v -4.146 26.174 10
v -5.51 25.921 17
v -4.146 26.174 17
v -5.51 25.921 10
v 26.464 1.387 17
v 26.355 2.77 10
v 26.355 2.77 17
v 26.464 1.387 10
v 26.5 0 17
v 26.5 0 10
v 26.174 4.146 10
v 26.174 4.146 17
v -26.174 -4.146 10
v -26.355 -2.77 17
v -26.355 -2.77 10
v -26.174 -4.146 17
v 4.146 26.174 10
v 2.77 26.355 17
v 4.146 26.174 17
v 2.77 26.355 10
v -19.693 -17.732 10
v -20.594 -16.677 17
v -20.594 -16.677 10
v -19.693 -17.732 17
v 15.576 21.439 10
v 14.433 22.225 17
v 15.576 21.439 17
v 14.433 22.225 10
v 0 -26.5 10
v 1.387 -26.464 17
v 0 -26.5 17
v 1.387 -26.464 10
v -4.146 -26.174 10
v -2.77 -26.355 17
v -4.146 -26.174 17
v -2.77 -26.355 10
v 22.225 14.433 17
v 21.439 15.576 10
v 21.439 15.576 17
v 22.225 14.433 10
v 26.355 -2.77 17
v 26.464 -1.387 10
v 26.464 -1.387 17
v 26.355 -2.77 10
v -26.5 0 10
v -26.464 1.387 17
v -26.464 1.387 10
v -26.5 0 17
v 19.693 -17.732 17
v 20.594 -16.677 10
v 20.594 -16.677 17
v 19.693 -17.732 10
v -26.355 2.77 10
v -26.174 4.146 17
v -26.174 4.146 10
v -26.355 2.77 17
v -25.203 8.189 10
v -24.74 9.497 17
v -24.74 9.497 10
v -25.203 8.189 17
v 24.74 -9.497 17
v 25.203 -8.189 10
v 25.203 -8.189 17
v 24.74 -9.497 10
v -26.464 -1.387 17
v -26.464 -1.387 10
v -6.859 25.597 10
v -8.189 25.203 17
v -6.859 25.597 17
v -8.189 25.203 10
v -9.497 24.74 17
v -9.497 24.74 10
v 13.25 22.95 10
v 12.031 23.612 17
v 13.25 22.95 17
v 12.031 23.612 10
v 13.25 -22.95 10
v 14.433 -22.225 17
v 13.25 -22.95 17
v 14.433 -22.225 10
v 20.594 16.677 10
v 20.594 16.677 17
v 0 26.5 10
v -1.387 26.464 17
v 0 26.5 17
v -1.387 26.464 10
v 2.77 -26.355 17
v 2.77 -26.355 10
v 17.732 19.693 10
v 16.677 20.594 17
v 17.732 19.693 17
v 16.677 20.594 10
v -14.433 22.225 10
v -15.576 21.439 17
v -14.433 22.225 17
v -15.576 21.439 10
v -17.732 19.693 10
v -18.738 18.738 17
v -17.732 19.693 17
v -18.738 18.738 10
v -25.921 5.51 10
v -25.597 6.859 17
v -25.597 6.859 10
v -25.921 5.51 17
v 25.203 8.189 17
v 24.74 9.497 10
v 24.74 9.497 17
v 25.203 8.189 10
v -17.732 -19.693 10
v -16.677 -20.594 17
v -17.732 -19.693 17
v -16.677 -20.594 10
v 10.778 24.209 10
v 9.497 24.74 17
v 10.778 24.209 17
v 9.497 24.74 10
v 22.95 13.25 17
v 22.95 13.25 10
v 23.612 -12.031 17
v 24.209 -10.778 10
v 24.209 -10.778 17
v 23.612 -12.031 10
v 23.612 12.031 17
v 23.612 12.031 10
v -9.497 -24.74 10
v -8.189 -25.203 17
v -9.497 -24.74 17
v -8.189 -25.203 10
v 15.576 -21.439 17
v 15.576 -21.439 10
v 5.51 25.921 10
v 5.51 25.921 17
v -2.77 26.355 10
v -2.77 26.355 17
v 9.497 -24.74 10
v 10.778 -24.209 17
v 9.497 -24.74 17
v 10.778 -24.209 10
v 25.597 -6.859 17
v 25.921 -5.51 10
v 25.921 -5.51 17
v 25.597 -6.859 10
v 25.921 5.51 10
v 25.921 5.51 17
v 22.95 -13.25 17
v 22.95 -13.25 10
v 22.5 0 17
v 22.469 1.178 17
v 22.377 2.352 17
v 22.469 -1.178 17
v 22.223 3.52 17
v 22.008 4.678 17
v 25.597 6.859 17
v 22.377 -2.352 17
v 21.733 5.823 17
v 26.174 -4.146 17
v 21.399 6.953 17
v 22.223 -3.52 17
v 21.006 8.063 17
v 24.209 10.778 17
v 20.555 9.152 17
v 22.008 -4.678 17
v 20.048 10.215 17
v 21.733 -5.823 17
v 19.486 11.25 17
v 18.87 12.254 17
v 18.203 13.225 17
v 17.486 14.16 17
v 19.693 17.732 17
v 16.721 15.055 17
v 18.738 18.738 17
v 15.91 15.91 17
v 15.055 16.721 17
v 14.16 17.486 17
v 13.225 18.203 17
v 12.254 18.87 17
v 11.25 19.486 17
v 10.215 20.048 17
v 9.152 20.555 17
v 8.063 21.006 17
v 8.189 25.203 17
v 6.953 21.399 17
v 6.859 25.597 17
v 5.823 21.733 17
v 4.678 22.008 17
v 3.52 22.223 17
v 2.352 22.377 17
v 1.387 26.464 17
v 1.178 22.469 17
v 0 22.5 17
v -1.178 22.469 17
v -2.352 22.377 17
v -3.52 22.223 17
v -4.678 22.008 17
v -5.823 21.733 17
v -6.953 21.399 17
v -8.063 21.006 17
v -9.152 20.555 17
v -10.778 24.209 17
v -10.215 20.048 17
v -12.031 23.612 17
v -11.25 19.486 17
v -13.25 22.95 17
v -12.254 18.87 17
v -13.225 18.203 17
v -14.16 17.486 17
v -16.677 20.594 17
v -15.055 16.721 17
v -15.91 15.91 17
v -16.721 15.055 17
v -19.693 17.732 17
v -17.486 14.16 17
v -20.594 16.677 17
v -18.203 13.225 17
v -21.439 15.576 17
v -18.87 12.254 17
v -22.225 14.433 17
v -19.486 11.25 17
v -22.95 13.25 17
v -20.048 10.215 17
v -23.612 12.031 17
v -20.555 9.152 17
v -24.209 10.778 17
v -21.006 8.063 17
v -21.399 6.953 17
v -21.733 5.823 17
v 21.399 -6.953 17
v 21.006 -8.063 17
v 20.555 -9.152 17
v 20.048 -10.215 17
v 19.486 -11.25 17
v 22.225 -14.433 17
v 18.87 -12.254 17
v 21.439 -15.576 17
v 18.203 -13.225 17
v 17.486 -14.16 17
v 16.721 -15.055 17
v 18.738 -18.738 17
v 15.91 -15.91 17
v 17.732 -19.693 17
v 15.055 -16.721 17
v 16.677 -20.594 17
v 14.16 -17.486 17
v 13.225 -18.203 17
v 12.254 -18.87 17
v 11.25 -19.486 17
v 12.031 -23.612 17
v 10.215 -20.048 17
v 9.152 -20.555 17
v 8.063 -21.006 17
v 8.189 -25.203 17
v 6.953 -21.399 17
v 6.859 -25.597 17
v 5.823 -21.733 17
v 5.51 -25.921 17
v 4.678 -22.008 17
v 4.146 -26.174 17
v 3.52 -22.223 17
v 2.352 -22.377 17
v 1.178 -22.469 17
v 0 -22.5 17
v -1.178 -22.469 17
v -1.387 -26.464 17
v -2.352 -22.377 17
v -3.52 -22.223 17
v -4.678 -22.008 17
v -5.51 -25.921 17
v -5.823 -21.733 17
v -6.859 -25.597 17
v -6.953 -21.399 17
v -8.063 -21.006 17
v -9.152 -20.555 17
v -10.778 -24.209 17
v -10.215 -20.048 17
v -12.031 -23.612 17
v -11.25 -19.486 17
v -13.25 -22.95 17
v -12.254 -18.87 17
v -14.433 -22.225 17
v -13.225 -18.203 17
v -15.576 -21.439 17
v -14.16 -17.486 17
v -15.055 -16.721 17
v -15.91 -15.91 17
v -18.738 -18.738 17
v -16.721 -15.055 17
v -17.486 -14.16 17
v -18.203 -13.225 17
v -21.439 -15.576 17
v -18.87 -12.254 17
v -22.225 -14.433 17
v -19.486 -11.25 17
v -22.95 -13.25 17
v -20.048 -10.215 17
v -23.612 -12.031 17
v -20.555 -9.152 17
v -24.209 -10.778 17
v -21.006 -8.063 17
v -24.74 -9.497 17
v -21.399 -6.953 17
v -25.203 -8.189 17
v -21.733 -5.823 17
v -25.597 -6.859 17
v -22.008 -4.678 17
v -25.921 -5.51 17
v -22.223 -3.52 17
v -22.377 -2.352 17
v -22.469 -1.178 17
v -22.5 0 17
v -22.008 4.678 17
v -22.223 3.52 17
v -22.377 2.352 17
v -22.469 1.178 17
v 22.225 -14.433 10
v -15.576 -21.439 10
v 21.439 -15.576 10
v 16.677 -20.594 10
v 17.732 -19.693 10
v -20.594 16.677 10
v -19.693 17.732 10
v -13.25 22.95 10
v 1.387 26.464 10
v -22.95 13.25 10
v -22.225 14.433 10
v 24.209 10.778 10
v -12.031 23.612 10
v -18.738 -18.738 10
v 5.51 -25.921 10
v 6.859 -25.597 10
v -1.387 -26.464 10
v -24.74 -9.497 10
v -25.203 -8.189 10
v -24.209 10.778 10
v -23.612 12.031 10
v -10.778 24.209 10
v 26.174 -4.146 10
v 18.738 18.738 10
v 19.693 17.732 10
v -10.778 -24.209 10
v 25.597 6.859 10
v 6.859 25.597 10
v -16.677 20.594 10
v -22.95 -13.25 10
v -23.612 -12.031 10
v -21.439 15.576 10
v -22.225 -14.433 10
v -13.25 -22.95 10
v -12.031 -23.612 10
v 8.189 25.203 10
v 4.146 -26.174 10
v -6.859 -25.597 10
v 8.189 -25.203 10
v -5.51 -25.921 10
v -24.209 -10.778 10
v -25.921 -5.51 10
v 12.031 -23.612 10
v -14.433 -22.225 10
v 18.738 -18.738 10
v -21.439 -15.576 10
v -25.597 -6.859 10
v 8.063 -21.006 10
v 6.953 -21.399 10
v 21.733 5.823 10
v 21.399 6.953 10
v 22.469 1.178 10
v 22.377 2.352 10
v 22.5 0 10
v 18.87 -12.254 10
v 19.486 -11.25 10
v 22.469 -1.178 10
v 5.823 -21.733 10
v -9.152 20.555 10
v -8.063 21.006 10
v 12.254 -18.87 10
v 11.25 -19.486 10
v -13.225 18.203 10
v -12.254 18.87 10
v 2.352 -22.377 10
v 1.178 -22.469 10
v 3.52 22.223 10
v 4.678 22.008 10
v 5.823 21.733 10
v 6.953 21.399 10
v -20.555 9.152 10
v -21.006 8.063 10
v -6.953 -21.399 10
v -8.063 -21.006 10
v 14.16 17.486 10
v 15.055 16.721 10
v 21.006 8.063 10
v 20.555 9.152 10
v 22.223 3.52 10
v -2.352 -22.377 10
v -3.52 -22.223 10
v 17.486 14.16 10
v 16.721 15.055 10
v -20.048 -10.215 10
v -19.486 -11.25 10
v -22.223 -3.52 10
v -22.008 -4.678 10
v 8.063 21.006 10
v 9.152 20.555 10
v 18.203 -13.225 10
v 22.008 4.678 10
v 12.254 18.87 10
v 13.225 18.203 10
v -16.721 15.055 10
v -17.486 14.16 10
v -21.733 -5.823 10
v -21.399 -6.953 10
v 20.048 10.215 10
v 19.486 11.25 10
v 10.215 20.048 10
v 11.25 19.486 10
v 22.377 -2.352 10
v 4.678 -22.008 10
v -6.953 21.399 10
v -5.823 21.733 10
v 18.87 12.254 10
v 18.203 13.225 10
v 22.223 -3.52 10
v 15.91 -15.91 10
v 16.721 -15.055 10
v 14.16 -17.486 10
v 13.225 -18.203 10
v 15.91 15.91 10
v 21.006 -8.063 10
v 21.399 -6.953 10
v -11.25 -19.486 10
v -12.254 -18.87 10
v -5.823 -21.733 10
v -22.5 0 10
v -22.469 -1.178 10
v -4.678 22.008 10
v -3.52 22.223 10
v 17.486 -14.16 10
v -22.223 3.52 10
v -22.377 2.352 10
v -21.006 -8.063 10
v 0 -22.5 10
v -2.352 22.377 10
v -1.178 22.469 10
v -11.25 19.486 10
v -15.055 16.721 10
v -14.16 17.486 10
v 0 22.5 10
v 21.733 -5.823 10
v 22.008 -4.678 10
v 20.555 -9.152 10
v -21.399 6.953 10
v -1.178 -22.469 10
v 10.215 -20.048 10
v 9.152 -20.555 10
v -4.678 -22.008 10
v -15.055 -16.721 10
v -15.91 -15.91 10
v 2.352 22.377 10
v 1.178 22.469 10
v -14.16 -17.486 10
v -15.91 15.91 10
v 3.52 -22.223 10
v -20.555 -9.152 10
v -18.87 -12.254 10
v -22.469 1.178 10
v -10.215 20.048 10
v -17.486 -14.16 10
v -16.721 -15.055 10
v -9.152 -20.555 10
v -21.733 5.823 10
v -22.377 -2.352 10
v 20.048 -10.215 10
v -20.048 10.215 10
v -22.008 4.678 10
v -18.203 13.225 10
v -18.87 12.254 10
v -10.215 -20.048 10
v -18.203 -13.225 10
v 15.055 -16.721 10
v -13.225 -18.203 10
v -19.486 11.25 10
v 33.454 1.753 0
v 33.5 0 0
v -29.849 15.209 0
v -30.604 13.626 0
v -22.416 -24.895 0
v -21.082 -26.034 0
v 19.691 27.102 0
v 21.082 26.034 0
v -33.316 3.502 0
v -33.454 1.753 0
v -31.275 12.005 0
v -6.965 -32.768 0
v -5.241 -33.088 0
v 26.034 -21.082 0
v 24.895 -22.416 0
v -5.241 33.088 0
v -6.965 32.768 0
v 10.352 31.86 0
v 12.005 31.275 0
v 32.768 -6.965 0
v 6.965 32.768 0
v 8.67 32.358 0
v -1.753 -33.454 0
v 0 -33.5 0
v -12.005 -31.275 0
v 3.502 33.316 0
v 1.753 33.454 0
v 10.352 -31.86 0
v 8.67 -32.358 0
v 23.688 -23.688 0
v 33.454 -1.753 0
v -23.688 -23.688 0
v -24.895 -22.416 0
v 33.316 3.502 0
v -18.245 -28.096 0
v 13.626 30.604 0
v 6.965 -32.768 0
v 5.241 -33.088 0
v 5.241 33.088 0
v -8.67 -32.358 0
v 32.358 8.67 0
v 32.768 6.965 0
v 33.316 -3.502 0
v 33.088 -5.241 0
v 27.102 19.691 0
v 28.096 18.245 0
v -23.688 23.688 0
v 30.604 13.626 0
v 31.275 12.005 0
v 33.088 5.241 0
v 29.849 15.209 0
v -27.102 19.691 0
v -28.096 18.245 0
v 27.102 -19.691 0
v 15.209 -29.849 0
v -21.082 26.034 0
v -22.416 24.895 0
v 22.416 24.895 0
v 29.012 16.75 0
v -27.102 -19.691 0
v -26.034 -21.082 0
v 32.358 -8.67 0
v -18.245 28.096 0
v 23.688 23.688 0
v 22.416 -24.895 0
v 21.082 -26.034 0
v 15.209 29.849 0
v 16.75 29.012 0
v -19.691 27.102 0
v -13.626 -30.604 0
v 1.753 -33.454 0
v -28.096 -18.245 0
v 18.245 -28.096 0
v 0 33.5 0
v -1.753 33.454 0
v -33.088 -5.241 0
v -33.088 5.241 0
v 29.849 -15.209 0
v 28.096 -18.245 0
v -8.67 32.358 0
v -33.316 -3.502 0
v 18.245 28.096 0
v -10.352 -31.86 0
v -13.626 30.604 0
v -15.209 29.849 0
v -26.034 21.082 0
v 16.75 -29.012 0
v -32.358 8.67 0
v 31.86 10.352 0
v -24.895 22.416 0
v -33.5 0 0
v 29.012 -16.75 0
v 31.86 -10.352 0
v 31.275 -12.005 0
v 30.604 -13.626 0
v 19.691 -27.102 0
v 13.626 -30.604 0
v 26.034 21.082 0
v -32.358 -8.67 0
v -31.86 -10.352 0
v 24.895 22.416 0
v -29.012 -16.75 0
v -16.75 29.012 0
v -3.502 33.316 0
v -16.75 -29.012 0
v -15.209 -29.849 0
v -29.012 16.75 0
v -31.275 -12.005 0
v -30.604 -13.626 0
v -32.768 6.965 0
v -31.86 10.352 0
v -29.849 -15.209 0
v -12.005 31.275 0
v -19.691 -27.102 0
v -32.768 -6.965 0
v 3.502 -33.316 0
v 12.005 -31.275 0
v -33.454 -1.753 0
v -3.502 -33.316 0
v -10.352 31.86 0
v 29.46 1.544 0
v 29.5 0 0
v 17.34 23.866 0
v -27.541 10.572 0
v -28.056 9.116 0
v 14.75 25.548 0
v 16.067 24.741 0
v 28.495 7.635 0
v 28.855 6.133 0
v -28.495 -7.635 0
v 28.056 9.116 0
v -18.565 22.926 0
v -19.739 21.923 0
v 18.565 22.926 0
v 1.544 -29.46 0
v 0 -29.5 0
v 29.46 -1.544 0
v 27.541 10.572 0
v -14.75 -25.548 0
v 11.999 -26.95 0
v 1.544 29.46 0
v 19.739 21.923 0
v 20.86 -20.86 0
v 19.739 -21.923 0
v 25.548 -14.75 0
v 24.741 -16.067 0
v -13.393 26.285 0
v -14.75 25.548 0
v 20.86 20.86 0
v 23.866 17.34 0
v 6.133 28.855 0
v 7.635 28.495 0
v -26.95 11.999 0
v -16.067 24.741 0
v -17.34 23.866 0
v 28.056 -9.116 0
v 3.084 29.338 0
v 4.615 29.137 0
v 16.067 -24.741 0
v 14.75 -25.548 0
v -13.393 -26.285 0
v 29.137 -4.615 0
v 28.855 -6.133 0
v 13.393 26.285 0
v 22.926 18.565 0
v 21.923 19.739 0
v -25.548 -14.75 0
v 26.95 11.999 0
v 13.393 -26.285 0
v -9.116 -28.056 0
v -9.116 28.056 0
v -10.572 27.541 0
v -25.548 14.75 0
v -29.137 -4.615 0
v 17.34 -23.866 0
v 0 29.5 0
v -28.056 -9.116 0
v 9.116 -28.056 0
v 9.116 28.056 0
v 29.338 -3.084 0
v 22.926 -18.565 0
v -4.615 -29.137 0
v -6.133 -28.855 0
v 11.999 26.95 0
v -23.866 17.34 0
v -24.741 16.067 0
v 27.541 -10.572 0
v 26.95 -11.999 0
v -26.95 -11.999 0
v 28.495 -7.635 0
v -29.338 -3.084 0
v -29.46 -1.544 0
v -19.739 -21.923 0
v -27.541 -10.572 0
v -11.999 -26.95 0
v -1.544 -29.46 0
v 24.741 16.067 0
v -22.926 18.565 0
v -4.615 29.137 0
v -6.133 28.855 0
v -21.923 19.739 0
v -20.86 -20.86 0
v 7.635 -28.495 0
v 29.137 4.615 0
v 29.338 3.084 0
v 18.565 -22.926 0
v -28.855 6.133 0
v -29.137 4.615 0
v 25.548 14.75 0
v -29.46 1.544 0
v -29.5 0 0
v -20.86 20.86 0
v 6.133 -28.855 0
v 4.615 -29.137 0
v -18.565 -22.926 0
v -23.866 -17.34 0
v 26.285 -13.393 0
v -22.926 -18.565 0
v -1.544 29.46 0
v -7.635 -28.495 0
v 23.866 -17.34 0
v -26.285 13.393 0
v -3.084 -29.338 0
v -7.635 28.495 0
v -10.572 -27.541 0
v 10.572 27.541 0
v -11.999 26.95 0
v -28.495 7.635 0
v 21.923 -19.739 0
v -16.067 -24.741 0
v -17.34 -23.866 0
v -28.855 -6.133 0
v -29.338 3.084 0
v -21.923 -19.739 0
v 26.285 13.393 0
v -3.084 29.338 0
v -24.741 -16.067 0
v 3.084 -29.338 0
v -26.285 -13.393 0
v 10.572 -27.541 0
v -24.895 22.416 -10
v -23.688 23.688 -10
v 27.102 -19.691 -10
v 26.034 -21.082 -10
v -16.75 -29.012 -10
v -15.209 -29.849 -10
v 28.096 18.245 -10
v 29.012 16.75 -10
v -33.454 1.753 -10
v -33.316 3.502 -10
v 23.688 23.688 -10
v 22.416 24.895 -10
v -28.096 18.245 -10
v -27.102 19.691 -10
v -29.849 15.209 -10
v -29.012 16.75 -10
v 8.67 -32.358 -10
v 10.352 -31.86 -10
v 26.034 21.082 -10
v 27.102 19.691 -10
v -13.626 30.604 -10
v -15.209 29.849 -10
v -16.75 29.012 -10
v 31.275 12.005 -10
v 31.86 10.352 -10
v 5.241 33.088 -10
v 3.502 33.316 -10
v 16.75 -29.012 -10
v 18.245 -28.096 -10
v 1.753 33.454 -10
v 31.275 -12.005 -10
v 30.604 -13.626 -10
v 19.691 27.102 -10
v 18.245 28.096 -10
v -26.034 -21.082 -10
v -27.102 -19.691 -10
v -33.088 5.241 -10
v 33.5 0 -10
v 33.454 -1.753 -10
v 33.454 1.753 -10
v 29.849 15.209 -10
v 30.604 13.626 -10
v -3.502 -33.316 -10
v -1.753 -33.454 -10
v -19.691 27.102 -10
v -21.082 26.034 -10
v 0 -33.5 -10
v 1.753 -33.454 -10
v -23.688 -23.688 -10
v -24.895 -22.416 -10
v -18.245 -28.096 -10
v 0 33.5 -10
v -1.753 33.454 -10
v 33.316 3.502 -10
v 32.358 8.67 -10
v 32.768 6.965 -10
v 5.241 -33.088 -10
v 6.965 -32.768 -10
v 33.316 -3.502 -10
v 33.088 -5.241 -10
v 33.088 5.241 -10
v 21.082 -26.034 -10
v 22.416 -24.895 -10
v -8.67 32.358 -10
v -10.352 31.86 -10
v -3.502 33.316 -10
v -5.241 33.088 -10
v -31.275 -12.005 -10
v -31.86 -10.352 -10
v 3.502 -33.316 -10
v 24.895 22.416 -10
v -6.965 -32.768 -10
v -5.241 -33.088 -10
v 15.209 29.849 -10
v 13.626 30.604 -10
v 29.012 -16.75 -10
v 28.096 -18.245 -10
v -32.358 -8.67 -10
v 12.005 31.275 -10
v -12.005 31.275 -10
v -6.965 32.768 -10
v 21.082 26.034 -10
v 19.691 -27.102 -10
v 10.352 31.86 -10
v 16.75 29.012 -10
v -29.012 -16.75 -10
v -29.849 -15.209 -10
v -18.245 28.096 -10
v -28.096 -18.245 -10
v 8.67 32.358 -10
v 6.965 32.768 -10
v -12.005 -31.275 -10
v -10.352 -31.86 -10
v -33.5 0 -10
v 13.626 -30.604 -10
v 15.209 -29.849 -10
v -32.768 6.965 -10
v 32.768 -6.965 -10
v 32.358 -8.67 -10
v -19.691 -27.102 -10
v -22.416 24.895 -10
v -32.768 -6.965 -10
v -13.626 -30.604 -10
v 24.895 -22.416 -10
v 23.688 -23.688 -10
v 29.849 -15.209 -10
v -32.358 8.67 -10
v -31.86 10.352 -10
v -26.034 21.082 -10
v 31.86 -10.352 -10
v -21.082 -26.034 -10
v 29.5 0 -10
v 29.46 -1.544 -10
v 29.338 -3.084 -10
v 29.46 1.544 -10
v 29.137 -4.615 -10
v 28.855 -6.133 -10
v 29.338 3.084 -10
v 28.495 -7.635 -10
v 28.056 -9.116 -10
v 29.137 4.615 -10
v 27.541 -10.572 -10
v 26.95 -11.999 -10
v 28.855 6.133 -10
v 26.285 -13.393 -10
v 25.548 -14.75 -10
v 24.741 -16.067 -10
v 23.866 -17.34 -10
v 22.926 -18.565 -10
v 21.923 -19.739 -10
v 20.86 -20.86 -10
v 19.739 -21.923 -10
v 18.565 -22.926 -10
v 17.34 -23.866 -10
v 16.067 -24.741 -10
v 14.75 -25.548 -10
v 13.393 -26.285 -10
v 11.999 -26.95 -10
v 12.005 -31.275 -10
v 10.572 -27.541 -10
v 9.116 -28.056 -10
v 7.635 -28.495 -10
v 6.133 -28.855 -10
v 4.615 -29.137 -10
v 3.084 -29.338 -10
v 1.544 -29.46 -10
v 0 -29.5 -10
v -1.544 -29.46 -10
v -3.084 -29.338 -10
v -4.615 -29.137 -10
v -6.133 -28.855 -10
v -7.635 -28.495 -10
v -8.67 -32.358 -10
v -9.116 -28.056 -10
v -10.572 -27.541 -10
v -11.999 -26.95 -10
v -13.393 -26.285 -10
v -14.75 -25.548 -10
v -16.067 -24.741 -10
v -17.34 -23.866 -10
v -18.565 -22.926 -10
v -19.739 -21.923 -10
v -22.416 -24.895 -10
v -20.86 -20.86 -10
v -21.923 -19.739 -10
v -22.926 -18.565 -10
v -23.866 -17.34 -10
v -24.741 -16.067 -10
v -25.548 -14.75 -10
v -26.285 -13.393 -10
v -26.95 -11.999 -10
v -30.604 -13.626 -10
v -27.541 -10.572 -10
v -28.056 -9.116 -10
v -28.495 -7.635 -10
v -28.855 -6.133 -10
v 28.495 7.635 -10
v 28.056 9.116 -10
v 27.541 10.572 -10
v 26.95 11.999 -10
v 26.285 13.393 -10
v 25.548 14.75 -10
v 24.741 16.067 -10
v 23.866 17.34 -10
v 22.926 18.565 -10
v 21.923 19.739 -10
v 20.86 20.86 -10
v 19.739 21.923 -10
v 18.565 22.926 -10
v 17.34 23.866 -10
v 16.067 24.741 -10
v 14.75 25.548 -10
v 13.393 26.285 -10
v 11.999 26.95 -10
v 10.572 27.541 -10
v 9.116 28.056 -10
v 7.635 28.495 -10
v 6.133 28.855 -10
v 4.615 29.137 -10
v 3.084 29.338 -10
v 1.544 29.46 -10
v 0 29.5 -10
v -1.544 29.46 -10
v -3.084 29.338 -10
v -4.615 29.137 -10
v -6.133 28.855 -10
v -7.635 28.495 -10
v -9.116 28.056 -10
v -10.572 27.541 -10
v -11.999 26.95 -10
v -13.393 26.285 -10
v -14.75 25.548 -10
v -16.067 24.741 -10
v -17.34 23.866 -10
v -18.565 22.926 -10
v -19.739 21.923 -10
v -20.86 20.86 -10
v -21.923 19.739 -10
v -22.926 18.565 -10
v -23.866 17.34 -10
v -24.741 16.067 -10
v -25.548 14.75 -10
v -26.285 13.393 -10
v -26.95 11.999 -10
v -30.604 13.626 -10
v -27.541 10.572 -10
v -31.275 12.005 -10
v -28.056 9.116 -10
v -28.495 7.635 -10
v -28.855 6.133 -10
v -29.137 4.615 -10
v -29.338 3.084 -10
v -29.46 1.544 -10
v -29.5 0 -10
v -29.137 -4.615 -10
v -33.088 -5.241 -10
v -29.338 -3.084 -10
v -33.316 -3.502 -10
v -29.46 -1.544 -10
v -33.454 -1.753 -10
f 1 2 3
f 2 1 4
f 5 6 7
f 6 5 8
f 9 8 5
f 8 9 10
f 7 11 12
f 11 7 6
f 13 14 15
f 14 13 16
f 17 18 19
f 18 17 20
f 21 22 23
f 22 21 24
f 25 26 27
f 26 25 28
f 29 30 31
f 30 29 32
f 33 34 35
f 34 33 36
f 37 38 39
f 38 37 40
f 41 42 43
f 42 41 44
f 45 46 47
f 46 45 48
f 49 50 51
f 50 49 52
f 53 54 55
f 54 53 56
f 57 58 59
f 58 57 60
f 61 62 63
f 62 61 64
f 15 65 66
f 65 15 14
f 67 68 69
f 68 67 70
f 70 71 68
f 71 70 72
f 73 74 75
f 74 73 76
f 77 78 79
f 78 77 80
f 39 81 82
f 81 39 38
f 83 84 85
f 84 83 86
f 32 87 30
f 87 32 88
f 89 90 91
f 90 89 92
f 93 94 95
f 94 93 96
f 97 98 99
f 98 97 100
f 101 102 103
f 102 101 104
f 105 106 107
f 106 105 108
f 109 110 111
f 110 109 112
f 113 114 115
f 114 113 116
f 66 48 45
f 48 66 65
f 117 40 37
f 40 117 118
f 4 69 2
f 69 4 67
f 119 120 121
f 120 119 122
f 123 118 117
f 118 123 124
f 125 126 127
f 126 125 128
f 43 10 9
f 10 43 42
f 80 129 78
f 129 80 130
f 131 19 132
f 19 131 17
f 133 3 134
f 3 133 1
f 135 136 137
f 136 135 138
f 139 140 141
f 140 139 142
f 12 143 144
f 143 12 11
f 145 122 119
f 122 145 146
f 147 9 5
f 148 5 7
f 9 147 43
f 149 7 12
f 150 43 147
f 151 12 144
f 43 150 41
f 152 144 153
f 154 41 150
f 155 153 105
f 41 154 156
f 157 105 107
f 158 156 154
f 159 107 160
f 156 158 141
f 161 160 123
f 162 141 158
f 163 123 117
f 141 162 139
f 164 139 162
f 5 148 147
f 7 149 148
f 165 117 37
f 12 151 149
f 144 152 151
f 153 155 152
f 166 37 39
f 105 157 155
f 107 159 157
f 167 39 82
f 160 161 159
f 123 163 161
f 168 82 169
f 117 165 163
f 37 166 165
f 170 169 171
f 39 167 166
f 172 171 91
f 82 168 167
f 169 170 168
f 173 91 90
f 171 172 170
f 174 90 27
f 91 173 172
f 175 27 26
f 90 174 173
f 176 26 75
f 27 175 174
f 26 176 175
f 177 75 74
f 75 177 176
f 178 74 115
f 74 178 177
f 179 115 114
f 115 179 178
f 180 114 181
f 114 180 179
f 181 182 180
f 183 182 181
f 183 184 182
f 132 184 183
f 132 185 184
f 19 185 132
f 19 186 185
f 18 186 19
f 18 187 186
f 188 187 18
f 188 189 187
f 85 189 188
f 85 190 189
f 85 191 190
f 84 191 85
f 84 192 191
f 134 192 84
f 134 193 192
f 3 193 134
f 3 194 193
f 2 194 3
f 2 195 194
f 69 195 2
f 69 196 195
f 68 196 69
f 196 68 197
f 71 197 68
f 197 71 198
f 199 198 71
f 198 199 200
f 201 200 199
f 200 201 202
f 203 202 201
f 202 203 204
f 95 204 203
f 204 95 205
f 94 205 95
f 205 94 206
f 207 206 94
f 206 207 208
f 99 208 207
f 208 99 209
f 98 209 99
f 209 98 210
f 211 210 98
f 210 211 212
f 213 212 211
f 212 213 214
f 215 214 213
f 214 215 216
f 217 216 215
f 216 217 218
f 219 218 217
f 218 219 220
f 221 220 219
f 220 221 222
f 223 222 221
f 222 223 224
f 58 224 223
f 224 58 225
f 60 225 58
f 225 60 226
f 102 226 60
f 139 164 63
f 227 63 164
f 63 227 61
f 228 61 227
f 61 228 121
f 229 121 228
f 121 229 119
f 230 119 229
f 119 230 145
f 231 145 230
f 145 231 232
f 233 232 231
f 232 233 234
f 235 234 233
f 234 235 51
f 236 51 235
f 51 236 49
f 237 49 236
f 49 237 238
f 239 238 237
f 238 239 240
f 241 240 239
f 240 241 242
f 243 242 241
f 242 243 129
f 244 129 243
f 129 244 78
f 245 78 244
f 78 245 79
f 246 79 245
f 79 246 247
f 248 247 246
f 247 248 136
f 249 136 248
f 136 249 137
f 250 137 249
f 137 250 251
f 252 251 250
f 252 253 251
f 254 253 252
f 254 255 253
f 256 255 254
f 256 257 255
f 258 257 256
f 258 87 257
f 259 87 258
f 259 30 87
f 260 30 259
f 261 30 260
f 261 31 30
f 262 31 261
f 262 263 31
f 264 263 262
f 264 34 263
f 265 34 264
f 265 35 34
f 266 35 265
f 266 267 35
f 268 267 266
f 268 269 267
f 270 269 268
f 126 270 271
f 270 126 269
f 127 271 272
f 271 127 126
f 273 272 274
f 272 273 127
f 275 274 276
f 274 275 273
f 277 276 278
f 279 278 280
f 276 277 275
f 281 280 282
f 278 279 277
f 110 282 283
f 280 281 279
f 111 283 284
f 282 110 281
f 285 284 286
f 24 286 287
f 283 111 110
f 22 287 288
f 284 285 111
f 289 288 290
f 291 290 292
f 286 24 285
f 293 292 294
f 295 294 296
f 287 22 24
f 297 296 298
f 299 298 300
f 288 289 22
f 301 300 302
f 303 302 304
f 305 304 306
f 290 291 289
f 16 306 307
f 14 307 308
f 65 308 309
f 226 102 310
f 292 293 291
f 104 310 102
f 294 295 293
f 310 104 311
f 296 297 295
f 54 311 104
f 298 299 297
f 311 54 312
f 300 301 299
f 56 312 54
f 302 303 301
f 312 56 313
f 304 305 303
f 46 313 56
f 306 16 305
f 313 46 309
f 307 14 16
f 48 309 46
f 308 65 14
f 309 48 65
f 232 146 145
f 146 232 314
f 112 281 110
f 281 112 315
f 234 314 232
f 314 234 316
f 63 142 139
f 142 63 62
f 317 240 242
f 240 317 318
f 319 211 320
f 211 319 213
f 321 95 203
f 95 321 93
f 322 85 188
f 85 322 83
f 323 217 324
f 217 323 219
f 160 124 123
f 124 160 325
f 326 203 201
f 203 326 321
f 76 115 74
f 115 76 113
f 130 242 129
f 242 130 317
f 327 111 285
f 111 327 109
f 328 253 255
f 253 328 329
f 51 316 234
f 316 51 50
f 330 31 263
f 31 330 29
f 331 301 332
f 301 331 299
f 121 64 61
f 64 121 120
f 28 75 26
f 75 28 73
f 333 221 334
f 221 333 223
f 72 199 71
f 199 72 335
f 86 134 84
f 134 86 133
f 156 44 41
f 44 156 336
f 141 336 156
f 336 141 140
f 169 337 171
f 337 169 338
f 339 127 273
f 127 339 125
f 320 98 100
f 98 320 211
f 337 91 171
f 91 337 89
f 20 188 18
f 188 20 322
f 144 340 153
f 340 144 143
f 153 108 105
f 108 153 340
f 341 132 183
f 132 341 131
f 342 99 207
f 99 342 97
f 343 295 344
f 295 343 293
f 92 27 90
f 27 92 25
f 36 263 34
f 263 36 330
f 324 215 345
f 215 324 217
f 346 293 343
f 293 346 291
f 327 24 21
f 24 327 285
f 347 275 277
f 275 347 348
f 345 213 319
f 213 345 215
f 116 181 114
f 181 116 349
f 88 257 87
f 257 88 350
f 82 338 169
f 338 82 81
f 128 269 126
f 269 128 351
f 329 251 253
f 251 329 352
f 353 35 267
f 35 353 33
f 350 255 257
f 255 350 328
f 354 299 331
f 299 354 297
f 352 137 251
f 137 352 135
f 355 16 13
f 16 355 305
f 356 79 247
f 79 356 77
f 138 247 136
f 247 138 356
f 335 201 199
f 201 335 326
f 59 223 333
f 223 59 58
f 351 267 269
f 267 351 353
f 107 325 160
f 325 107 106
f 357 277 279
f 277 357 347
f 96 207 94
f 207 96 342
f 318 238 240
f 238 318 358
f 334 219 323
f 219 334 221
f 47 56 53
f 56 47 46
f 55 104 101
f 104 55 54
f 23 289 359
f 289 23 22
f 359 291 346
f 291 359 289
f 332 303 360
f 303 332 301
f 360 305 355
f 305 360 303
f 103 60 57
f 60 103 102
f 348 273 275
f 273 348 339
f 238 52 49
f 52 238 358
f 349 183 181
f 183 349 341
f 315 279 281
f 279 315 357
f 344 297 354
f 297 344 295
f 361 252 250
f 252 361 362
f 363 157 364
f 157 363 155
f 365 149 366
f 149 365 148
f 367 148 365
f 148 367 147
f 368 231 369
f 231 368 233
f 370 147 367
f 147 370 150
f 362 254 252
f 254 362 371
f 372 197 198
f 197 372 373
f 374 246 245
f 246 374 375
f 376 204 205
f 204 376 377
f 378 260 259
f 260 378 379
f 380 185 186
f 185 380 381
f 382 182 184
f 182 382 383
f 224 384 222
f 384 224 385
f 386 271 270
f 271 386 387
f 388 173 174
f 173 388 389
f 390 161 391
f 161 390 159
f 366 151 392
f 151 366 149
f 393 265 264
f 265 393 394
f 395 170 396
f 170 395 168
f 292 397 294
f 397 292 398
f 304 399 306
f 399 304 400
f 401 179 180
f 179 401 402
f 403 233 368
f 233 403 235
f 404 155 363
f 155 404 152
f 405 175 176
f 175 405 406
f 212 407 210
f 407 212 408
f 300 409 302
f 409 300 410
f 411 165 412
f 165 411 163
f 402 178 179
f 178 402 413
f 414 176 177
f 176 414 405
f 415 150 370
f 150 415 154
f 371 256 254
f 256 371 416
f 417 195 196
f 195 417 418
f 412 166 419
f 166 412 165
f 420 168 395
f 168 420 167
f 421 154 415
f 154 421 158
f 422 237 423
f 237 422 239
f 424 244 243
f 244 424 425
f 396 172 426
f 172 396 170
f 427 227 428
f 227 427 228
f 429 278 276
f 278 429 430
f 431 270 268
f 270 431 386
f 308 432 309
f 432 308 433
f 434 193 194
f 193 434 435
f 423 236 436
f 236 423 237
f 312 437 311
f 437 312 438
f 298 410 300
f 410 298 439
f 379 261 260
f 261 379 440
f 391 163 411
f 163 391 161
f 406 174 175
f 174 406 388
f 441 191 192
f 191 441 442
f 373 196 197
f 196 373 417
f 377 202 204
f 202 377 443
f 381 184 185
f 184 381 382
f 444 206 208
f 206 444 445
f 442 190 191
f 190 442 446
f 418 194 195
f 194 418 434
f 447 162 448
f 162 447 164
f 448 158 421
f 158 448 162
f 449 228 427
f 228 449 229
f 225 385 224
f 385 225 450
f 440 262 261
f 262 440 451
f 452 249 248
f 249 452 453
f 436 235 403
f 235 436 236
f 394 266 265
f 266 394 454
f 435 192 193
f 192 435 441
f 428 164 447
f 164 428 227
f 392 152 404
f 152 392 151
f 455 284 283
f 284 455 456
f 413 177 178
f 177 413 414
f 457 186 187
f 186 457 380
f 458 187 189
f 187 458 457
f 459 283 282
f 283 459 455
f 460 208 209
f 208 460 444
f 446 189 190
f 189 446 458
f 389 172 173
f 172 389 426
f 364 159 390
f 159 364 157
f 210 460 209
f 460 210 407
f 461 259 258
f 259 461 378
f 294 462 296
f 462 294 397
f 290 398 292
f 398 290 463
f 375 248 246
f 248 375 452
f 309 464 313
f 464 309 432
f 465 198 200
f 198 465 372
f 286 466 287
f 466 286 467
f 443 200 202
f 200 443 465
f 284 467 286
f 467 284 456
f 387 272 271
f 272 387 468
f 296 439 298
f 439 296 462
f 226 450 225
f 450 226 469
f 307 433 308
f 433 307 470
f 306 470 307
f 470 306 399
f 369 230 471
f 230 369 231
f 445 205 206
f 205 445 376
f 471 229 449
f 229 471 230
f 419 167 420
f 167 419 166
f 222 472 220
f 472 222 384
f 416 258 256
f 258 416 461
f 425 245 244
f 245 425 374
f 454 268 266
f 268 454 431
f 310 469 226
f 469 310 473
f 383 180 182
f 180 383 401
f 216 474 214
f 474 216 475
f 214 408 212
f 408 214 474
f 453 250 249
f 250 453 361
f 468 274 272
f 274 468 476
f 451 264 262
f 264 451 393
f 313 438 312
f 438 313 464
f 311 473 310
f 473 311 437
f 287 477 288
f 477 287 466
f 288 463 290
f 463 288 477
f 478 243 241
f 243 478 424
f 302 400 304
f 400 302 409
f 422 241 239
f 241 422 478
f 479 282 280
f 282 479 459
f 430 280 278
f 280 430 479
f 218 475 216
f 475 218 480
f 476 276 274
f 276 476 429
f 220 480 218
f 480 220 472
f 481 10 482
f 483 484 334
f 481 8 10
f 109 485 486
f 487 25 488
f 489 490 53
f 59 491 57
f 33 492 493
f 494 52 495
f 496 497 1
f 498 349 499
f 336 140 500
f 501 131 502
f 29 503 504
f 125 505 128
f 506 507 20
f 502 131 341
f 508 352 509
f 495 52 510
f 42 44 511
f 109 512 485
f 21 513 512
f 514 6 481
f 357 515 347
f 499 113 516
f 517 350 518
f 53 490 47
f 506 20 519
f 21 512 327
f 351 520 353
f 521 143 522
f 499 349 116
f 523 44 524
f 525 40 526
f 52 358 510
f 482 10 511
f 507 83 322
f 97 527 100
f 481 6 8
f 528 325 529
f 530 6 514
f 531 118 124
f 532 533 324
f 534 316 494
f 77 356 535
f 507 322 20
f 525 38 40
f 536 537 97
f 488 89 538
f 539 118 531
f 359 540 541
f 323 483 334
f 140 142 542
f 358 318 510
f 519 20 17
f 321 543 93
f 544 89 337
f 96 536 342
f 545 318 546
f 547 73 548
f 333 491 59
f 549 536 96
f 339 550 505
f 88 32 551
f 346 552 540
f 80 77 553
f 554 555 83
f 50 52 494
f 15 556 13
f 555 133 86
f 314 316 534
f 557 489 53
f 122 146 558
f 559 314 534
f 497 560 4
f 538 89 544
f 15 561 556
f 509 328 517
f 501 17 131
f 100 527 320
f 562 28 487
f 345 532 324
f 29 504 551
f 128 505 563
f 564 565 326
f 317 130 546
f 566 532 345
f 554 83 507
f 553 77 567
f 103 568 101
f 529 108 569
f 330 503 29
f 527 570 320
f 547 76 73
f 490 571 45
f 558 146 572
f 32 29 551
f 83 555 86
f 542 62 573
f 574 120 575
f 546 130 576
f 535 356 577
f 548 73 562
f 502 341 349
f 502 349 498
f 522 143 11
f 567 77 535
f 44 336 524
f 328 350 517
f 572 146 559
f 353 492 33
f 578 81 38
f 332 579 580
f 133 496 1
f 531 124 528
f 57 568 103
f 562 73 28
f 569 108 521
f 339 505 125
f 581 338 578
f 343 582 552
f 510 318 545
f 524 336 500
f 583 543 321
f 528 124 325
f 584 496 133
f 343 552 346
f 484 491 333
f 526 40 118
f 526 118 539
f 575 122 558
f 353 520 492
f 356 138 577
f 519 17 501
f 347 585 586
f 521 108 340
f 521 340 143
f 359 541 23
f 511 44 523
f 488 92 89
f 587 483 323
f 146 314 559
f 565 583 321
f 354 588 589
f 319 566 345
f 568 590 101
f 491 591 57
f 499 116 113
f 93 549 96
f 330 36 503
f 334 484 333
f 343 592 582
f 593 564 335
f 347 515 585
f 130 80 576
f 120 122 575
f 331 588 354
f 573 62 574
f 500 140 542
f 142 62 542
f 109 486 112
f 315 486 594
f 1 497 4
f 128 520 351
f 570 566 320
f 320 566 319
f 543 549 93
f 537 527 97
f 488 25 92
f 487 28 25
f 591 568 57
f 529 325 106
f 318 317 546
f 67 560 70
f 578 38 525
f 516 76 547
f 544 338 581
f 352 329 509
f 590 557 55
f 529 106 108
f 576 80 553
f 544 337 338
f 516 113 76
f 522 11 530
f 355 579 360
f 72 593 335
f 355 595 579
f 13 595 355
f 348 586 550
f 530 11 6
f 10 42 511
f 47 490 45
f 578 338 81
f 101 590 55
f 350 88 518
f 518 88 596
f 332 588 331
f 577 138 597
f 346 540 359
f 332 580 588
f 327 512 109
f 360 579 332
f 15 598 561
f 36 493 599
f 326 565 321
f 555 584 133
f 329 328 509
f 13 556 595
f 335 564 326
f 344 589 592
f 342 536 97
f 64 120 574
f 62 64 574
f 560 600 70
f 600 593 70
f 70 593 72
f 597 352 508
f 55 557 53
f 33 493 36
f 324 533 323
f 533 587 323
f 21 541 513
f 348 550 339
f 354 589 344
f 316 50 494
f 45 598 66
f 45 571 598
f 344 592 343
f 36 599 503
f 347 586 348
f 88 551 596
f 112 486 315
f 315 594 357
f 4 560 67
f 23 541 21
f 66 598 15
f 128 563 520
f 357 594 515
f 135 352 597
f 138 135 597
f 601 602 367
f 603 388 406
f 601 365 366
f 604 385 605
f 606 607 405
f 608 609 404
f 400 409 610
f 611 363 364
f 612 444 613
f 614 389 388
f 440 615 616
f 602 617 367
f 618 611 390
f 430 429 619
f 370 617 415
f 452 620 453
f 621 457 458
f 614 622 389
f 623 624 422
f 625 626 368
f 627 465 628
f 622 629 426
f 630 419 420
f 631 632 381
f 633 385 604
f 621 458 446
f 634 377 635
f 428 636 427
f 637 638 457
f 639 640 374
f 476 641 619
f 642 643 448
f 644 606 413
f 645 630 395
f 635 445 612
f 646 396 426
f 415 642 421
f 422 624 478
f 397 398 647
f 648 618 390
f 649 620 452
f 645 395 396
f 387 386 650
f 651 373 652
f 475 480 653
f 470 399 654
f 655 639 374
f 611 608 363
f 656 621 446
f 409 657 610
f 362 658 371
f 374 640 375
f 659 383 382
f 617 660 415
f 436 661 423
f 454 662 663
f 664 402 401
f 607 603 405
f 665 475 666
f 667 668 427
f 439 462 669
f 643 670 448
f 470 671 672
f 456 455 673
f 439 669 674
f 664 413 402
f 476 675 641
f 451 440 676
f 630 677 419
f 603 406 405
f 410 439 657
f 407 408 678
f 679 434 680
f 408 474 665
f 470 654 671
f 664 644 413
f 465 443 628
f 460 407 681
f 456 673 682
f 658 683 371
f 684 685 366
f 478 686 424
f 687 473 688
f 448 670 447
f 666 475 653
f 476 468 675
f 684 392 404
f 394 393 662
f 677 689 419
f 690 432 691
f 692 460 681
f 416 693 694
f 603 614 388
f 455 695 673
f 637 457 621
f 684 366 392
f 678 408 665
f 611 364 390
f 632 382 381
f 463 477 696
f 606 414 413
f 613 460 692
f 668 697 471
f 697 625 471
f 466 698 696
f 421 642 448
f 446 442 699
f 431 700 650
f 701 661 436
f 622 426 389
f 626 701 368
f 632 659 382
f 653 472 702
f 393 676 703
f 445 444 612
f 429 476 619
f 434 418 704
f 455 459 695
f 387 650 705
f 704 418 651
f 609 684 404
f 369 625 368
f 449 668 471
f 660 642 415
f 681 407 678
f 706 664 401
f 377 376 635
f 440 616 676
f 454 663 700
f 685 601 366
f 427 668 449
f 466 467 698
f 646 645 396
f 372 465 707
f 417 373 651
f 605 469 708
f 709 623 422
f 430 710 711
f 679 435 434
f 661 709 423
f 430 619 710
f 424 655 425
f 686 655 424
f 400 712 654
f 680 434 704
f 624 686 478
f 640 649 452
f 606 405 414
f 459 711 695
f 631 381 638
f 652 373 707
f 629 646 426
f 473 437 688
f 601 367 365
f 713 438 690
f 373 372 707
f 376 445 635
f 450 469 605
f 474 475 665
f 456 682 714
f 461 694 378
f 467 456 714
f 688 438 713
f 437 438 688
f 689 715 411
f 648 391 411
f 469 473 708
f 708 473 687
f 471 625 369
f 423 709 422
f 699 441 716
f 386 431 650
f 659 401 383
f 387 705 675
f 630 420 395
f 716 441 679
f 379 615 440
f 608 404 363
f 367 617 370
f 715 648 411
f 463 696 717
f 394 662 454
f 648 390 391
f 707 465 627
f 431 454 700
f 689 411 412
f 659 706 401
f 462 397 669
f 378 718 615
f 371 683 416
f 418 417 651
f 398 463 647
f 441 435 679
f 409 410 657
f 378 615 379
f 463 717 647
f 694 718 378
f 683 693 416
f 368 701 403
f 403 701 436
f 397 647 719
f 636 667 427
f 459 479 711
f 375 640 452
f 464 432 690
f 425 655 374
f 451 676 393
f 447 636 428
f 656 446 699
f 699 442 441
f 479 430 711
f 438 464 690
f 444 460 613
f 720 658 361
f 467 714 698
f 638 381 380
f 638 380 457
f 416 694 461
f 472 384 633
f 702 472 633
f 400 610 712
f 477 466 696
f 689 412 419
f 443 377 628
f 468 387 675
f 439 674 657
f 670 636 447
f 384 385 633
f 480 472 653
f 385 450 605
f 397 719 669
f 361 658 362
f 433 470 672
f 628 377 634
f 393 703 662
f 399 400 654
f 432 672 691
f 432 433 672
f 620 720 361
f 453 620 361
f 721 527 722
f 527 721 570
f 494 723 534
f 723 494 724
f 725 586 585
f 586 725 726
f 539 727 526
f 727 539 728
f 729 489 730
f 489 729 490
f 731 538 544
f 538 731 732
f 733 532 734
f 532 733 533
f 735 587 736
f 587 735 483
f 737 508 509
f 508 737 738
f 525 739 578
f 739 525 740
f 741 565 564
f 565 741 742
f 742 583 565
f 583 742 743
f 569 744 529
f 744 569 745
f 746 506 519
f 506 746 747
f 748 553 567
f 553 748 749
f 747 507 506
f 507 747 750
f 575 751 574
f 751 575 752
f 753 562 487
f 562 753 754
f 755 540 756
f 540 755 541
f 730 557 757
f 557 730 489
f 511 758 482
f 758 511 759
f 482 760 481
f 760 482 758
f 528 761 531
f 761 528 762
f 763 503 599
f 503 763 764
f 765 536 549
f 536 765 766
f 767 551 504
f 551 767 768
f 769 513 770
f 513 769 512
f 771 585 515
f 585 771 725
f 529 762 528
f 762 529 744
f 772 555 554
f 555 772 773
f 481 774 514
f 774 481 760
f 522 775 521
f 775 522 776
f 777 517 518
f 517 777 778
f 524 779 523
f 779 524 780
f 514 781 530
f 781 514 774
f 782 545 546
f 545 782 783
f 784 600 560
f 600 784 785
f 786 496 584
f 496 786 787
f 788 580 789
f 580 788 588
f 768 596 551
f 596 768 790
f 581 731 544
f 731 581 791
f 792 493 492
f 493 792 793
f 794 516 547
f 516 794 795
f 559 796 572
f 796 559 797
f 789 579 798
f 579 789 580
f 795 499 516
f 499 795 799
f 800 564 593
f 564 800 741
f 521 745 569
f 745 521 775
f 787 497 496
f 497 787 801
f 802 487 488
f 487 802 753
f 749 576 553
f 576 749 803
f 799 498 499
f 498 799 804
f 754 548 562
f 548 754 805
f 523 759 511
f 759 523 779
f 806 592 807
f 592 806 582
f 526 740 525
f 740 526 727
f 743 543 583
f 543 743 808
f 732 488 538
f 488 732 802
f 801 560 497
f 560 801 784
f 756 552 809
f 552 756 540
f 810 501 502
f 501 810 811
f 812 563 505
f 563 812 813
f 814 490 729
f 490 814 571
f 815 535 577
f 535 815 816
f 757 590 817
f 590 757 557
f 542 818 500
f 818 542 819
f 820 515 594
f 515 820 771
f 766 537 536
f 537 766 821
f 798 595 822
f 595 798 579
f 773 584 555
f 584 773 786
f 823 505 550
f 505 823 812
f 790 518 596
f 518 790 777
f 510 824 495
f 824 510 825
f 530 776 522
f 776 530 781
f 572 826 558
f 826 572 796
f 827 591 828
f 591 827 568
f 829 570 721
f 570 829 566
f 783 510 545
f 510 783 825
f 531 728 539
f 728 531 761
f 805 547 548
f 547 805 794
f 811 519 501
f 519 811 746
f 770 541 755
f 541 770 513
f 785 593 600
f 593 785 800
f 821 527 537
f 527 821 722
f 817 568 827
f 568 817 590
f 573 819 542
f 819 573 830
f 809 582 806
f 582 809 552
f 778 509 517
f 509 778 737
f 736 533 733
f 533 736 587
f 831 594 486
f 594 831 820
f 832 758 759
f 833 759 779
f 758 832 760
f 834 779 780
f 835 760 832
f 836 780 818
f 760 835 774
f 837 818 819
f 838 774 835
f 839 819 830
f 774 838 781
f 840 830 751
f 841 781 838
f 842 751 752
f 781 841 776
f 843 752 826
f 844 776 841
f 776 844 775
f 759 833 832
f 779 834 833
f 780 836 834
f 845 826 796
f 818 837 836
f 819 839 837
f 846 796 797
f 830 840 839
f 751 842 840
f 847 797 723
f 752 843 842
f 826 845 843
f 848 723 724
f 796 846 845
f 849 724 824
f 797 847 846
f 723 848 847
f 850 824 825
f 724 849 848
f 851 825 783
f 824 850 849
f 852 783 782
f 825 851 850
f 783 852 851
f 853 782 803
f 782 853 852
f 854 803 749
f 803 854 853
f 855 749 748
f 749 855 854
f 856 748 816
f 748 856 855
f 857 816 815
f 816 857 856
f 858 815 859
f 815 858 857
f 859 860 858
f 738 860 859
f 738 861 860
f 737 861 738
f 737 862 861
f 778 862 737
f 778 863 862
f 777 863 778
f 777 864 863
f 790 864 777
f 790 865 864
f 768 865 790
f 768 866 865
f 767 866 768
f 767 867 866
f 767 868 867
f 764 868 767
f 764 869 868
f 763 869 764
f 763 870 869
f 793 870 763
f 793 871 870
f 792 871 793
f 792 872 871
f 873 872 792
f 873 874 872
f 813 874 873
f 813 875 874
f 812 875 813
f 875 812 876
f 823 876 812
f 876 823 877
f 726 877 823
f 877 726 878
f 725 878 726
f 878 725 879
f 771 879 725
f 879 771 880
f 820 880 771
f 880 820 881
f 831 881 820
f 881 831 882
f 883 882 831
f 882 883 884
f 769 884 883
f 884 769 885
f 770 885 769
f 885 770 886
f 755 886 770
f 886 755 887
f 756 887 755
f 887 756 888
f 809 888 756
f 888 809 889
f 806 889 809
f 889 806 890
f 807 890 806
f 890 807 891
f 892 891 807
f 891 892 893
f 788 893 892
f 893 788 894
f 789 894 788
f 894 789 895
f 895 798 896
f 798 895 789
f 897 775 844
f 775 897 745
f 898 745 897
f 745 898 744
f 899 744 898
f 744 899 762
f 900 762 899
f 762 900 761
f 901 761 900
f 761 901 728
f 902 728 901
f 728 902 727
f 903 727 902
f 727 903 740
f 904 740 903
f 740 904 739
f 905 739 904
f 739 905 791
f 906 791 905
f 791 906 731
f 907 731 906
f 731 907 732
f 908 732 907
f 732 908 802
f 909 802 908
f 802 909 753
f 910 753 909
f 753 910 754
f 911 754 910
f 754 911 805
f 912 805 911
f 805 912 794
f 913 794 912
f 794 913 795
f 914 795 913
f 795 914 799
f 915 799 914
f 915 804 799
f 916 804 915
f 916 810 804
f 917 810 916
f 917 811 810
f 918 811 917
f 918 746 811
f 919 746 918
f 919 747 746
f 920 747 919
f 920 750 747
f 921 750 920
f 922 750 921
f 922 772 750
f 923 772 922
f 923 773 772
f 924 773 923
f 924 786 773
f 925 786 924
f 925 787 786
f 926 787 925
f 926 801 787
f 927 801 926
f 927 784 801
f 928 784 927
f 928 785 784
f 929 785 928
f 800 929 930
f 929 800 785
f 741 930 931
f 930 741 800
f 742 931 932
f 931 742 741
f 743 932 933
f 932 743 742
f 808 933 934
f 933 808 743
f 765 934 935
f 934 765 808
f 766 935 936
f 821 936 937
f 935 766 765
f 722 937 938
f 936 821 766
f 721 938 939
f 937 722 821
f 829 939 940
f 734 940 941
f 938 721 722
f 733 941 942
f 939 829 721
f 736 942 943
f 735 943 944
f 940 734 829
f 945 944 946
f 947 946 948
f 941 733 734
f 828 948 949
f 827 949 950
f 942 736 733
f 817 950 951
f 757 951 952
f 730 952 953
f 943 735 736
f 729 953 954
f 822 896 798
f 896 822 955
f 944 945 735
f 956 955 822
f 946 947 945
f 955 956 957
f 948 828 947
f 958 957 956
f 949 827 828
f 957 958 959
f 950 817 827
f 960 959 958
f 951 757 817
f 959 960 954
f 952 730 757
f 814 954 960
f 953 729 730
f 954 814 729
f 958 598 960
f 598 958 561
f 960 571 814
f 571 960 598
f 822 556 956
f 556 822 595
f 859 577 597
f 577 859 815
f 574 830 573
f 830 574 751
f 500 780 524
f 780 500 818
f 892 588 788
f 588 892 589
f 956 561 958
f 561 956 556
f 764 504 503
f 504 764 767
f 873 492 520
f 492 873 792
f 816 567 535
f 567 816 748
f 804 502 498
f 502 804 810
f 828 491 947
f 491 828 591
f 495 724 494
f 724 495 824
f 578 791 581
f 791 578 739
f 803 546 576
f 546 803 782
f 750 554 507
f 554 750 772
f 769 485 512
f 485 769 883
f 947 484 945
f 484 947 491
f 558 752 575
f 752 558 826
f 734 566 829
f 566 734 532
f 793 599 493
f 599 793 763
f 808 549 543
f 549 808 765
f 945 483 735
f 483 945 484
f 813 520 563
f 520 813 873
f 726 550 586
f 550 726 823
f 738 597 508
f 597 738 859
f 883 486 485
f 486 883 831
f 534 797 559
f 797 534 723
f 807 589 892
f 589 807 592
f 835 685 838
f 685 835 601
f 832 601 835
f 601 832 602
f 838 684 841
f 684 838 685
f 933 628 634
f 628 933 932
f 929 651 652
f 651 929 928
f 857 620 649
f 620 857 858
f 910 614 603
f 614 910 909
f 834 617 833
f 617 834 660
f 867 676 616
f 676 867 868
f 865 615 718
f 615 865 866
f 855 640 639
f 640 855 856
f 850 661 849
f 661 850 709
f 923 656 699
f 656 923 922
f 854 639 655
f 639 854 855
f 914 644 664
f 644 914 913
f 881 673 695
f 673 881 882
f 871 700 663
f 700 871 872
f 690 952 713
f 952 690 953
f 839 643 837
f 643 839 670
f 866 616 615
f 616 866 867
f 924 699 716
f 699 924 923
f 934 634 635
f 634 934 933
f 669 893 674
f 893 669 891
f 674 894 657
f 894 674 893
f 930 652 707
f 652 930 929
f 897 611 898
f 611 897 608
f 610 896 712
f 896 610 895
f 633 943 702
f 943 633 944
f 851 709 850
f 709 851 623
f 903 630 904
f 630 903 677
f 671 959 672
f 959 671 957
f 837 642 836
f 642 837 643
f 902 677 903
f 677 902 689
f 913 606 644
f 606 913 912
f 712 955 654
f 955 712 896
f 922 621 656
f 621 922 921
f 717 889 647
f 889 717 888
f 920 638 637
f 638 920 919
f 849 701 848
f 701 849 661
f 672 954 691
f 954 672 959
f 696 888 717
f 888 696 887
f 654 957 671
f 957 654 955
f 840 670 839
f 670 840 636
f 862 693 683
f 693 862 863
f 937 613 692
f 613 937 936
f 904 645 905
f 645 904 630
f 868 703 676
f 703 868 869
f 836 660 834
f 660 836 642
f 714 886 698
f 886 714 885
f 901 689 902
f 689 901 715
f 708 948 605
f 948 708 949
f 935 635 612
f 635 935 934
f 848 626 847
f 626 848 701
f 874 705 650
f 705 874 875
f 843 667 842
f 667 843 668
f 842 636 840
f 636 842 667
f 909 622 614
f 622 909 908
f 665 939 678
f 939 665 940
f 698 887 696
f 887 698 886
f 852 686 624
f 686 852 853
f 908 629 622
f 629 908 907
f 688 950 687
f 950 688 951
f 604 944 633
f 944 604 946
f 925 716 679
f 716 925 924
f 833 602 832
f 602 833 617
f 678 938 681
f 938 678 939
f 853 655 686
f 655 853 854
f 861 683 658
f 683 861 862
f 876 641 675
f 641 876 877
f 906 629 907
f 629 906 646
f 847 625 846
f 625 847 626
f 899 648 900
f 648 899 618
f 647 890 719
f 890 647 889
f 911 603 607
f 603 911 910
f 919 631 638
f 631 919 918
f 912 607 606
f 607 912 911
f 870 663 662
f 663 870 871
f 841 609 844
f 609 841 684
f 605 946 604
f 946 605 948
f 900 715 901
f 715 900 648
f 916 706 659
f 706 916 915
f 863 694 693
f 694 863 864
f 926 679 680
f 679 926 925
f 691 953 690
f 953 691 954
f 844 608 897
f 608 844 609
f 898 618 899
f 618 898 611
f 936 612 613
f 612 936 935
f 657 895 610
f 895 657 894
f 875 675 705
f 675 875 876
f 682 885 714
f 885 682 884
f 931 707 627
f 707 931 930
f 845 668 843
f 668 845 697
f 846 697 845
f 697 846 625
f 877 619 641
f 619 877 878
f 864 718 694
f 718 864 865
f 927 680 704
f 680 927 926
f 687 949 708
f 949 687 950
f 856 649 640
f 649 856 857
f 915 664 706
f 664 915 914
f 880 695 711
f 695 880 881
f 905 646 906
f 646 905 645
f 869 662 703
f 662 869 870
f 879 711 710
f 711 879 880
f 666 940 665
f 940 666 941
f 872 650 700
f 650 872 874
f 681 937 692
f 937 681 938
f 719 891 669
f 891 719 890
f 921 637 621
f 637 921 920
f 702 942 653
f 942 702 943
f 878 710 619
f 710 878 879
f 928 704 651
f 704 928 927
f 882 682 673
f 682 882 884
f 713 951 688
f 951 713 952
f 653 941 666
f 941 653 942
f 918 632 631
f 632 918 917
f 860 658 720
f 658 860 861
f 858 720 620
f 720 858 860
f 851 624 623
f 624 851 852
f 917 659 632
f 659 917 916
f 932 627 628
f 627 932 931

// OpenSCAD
union () {
  translate ([0, 0, 10]) {
    difference () {
      cylinder ($fn=120, h=7, r=53/2);
      cylinder ($fn=120, h=7, r=45/2);
    }
  }
  difference () {
    cylinder ($fn=120, h=10, r1=67/2, r2=53/2);
    cylinder ($fn=120, h=10, r1=59/2, r2=45/2);
  }
  translate ([0, 0, -10]) {
    difference () {
      cylinder ($fn=120, h=10, r=67/2);
      cylinder ($fn=120, h=10, r=59/2);
    }
  }
}
